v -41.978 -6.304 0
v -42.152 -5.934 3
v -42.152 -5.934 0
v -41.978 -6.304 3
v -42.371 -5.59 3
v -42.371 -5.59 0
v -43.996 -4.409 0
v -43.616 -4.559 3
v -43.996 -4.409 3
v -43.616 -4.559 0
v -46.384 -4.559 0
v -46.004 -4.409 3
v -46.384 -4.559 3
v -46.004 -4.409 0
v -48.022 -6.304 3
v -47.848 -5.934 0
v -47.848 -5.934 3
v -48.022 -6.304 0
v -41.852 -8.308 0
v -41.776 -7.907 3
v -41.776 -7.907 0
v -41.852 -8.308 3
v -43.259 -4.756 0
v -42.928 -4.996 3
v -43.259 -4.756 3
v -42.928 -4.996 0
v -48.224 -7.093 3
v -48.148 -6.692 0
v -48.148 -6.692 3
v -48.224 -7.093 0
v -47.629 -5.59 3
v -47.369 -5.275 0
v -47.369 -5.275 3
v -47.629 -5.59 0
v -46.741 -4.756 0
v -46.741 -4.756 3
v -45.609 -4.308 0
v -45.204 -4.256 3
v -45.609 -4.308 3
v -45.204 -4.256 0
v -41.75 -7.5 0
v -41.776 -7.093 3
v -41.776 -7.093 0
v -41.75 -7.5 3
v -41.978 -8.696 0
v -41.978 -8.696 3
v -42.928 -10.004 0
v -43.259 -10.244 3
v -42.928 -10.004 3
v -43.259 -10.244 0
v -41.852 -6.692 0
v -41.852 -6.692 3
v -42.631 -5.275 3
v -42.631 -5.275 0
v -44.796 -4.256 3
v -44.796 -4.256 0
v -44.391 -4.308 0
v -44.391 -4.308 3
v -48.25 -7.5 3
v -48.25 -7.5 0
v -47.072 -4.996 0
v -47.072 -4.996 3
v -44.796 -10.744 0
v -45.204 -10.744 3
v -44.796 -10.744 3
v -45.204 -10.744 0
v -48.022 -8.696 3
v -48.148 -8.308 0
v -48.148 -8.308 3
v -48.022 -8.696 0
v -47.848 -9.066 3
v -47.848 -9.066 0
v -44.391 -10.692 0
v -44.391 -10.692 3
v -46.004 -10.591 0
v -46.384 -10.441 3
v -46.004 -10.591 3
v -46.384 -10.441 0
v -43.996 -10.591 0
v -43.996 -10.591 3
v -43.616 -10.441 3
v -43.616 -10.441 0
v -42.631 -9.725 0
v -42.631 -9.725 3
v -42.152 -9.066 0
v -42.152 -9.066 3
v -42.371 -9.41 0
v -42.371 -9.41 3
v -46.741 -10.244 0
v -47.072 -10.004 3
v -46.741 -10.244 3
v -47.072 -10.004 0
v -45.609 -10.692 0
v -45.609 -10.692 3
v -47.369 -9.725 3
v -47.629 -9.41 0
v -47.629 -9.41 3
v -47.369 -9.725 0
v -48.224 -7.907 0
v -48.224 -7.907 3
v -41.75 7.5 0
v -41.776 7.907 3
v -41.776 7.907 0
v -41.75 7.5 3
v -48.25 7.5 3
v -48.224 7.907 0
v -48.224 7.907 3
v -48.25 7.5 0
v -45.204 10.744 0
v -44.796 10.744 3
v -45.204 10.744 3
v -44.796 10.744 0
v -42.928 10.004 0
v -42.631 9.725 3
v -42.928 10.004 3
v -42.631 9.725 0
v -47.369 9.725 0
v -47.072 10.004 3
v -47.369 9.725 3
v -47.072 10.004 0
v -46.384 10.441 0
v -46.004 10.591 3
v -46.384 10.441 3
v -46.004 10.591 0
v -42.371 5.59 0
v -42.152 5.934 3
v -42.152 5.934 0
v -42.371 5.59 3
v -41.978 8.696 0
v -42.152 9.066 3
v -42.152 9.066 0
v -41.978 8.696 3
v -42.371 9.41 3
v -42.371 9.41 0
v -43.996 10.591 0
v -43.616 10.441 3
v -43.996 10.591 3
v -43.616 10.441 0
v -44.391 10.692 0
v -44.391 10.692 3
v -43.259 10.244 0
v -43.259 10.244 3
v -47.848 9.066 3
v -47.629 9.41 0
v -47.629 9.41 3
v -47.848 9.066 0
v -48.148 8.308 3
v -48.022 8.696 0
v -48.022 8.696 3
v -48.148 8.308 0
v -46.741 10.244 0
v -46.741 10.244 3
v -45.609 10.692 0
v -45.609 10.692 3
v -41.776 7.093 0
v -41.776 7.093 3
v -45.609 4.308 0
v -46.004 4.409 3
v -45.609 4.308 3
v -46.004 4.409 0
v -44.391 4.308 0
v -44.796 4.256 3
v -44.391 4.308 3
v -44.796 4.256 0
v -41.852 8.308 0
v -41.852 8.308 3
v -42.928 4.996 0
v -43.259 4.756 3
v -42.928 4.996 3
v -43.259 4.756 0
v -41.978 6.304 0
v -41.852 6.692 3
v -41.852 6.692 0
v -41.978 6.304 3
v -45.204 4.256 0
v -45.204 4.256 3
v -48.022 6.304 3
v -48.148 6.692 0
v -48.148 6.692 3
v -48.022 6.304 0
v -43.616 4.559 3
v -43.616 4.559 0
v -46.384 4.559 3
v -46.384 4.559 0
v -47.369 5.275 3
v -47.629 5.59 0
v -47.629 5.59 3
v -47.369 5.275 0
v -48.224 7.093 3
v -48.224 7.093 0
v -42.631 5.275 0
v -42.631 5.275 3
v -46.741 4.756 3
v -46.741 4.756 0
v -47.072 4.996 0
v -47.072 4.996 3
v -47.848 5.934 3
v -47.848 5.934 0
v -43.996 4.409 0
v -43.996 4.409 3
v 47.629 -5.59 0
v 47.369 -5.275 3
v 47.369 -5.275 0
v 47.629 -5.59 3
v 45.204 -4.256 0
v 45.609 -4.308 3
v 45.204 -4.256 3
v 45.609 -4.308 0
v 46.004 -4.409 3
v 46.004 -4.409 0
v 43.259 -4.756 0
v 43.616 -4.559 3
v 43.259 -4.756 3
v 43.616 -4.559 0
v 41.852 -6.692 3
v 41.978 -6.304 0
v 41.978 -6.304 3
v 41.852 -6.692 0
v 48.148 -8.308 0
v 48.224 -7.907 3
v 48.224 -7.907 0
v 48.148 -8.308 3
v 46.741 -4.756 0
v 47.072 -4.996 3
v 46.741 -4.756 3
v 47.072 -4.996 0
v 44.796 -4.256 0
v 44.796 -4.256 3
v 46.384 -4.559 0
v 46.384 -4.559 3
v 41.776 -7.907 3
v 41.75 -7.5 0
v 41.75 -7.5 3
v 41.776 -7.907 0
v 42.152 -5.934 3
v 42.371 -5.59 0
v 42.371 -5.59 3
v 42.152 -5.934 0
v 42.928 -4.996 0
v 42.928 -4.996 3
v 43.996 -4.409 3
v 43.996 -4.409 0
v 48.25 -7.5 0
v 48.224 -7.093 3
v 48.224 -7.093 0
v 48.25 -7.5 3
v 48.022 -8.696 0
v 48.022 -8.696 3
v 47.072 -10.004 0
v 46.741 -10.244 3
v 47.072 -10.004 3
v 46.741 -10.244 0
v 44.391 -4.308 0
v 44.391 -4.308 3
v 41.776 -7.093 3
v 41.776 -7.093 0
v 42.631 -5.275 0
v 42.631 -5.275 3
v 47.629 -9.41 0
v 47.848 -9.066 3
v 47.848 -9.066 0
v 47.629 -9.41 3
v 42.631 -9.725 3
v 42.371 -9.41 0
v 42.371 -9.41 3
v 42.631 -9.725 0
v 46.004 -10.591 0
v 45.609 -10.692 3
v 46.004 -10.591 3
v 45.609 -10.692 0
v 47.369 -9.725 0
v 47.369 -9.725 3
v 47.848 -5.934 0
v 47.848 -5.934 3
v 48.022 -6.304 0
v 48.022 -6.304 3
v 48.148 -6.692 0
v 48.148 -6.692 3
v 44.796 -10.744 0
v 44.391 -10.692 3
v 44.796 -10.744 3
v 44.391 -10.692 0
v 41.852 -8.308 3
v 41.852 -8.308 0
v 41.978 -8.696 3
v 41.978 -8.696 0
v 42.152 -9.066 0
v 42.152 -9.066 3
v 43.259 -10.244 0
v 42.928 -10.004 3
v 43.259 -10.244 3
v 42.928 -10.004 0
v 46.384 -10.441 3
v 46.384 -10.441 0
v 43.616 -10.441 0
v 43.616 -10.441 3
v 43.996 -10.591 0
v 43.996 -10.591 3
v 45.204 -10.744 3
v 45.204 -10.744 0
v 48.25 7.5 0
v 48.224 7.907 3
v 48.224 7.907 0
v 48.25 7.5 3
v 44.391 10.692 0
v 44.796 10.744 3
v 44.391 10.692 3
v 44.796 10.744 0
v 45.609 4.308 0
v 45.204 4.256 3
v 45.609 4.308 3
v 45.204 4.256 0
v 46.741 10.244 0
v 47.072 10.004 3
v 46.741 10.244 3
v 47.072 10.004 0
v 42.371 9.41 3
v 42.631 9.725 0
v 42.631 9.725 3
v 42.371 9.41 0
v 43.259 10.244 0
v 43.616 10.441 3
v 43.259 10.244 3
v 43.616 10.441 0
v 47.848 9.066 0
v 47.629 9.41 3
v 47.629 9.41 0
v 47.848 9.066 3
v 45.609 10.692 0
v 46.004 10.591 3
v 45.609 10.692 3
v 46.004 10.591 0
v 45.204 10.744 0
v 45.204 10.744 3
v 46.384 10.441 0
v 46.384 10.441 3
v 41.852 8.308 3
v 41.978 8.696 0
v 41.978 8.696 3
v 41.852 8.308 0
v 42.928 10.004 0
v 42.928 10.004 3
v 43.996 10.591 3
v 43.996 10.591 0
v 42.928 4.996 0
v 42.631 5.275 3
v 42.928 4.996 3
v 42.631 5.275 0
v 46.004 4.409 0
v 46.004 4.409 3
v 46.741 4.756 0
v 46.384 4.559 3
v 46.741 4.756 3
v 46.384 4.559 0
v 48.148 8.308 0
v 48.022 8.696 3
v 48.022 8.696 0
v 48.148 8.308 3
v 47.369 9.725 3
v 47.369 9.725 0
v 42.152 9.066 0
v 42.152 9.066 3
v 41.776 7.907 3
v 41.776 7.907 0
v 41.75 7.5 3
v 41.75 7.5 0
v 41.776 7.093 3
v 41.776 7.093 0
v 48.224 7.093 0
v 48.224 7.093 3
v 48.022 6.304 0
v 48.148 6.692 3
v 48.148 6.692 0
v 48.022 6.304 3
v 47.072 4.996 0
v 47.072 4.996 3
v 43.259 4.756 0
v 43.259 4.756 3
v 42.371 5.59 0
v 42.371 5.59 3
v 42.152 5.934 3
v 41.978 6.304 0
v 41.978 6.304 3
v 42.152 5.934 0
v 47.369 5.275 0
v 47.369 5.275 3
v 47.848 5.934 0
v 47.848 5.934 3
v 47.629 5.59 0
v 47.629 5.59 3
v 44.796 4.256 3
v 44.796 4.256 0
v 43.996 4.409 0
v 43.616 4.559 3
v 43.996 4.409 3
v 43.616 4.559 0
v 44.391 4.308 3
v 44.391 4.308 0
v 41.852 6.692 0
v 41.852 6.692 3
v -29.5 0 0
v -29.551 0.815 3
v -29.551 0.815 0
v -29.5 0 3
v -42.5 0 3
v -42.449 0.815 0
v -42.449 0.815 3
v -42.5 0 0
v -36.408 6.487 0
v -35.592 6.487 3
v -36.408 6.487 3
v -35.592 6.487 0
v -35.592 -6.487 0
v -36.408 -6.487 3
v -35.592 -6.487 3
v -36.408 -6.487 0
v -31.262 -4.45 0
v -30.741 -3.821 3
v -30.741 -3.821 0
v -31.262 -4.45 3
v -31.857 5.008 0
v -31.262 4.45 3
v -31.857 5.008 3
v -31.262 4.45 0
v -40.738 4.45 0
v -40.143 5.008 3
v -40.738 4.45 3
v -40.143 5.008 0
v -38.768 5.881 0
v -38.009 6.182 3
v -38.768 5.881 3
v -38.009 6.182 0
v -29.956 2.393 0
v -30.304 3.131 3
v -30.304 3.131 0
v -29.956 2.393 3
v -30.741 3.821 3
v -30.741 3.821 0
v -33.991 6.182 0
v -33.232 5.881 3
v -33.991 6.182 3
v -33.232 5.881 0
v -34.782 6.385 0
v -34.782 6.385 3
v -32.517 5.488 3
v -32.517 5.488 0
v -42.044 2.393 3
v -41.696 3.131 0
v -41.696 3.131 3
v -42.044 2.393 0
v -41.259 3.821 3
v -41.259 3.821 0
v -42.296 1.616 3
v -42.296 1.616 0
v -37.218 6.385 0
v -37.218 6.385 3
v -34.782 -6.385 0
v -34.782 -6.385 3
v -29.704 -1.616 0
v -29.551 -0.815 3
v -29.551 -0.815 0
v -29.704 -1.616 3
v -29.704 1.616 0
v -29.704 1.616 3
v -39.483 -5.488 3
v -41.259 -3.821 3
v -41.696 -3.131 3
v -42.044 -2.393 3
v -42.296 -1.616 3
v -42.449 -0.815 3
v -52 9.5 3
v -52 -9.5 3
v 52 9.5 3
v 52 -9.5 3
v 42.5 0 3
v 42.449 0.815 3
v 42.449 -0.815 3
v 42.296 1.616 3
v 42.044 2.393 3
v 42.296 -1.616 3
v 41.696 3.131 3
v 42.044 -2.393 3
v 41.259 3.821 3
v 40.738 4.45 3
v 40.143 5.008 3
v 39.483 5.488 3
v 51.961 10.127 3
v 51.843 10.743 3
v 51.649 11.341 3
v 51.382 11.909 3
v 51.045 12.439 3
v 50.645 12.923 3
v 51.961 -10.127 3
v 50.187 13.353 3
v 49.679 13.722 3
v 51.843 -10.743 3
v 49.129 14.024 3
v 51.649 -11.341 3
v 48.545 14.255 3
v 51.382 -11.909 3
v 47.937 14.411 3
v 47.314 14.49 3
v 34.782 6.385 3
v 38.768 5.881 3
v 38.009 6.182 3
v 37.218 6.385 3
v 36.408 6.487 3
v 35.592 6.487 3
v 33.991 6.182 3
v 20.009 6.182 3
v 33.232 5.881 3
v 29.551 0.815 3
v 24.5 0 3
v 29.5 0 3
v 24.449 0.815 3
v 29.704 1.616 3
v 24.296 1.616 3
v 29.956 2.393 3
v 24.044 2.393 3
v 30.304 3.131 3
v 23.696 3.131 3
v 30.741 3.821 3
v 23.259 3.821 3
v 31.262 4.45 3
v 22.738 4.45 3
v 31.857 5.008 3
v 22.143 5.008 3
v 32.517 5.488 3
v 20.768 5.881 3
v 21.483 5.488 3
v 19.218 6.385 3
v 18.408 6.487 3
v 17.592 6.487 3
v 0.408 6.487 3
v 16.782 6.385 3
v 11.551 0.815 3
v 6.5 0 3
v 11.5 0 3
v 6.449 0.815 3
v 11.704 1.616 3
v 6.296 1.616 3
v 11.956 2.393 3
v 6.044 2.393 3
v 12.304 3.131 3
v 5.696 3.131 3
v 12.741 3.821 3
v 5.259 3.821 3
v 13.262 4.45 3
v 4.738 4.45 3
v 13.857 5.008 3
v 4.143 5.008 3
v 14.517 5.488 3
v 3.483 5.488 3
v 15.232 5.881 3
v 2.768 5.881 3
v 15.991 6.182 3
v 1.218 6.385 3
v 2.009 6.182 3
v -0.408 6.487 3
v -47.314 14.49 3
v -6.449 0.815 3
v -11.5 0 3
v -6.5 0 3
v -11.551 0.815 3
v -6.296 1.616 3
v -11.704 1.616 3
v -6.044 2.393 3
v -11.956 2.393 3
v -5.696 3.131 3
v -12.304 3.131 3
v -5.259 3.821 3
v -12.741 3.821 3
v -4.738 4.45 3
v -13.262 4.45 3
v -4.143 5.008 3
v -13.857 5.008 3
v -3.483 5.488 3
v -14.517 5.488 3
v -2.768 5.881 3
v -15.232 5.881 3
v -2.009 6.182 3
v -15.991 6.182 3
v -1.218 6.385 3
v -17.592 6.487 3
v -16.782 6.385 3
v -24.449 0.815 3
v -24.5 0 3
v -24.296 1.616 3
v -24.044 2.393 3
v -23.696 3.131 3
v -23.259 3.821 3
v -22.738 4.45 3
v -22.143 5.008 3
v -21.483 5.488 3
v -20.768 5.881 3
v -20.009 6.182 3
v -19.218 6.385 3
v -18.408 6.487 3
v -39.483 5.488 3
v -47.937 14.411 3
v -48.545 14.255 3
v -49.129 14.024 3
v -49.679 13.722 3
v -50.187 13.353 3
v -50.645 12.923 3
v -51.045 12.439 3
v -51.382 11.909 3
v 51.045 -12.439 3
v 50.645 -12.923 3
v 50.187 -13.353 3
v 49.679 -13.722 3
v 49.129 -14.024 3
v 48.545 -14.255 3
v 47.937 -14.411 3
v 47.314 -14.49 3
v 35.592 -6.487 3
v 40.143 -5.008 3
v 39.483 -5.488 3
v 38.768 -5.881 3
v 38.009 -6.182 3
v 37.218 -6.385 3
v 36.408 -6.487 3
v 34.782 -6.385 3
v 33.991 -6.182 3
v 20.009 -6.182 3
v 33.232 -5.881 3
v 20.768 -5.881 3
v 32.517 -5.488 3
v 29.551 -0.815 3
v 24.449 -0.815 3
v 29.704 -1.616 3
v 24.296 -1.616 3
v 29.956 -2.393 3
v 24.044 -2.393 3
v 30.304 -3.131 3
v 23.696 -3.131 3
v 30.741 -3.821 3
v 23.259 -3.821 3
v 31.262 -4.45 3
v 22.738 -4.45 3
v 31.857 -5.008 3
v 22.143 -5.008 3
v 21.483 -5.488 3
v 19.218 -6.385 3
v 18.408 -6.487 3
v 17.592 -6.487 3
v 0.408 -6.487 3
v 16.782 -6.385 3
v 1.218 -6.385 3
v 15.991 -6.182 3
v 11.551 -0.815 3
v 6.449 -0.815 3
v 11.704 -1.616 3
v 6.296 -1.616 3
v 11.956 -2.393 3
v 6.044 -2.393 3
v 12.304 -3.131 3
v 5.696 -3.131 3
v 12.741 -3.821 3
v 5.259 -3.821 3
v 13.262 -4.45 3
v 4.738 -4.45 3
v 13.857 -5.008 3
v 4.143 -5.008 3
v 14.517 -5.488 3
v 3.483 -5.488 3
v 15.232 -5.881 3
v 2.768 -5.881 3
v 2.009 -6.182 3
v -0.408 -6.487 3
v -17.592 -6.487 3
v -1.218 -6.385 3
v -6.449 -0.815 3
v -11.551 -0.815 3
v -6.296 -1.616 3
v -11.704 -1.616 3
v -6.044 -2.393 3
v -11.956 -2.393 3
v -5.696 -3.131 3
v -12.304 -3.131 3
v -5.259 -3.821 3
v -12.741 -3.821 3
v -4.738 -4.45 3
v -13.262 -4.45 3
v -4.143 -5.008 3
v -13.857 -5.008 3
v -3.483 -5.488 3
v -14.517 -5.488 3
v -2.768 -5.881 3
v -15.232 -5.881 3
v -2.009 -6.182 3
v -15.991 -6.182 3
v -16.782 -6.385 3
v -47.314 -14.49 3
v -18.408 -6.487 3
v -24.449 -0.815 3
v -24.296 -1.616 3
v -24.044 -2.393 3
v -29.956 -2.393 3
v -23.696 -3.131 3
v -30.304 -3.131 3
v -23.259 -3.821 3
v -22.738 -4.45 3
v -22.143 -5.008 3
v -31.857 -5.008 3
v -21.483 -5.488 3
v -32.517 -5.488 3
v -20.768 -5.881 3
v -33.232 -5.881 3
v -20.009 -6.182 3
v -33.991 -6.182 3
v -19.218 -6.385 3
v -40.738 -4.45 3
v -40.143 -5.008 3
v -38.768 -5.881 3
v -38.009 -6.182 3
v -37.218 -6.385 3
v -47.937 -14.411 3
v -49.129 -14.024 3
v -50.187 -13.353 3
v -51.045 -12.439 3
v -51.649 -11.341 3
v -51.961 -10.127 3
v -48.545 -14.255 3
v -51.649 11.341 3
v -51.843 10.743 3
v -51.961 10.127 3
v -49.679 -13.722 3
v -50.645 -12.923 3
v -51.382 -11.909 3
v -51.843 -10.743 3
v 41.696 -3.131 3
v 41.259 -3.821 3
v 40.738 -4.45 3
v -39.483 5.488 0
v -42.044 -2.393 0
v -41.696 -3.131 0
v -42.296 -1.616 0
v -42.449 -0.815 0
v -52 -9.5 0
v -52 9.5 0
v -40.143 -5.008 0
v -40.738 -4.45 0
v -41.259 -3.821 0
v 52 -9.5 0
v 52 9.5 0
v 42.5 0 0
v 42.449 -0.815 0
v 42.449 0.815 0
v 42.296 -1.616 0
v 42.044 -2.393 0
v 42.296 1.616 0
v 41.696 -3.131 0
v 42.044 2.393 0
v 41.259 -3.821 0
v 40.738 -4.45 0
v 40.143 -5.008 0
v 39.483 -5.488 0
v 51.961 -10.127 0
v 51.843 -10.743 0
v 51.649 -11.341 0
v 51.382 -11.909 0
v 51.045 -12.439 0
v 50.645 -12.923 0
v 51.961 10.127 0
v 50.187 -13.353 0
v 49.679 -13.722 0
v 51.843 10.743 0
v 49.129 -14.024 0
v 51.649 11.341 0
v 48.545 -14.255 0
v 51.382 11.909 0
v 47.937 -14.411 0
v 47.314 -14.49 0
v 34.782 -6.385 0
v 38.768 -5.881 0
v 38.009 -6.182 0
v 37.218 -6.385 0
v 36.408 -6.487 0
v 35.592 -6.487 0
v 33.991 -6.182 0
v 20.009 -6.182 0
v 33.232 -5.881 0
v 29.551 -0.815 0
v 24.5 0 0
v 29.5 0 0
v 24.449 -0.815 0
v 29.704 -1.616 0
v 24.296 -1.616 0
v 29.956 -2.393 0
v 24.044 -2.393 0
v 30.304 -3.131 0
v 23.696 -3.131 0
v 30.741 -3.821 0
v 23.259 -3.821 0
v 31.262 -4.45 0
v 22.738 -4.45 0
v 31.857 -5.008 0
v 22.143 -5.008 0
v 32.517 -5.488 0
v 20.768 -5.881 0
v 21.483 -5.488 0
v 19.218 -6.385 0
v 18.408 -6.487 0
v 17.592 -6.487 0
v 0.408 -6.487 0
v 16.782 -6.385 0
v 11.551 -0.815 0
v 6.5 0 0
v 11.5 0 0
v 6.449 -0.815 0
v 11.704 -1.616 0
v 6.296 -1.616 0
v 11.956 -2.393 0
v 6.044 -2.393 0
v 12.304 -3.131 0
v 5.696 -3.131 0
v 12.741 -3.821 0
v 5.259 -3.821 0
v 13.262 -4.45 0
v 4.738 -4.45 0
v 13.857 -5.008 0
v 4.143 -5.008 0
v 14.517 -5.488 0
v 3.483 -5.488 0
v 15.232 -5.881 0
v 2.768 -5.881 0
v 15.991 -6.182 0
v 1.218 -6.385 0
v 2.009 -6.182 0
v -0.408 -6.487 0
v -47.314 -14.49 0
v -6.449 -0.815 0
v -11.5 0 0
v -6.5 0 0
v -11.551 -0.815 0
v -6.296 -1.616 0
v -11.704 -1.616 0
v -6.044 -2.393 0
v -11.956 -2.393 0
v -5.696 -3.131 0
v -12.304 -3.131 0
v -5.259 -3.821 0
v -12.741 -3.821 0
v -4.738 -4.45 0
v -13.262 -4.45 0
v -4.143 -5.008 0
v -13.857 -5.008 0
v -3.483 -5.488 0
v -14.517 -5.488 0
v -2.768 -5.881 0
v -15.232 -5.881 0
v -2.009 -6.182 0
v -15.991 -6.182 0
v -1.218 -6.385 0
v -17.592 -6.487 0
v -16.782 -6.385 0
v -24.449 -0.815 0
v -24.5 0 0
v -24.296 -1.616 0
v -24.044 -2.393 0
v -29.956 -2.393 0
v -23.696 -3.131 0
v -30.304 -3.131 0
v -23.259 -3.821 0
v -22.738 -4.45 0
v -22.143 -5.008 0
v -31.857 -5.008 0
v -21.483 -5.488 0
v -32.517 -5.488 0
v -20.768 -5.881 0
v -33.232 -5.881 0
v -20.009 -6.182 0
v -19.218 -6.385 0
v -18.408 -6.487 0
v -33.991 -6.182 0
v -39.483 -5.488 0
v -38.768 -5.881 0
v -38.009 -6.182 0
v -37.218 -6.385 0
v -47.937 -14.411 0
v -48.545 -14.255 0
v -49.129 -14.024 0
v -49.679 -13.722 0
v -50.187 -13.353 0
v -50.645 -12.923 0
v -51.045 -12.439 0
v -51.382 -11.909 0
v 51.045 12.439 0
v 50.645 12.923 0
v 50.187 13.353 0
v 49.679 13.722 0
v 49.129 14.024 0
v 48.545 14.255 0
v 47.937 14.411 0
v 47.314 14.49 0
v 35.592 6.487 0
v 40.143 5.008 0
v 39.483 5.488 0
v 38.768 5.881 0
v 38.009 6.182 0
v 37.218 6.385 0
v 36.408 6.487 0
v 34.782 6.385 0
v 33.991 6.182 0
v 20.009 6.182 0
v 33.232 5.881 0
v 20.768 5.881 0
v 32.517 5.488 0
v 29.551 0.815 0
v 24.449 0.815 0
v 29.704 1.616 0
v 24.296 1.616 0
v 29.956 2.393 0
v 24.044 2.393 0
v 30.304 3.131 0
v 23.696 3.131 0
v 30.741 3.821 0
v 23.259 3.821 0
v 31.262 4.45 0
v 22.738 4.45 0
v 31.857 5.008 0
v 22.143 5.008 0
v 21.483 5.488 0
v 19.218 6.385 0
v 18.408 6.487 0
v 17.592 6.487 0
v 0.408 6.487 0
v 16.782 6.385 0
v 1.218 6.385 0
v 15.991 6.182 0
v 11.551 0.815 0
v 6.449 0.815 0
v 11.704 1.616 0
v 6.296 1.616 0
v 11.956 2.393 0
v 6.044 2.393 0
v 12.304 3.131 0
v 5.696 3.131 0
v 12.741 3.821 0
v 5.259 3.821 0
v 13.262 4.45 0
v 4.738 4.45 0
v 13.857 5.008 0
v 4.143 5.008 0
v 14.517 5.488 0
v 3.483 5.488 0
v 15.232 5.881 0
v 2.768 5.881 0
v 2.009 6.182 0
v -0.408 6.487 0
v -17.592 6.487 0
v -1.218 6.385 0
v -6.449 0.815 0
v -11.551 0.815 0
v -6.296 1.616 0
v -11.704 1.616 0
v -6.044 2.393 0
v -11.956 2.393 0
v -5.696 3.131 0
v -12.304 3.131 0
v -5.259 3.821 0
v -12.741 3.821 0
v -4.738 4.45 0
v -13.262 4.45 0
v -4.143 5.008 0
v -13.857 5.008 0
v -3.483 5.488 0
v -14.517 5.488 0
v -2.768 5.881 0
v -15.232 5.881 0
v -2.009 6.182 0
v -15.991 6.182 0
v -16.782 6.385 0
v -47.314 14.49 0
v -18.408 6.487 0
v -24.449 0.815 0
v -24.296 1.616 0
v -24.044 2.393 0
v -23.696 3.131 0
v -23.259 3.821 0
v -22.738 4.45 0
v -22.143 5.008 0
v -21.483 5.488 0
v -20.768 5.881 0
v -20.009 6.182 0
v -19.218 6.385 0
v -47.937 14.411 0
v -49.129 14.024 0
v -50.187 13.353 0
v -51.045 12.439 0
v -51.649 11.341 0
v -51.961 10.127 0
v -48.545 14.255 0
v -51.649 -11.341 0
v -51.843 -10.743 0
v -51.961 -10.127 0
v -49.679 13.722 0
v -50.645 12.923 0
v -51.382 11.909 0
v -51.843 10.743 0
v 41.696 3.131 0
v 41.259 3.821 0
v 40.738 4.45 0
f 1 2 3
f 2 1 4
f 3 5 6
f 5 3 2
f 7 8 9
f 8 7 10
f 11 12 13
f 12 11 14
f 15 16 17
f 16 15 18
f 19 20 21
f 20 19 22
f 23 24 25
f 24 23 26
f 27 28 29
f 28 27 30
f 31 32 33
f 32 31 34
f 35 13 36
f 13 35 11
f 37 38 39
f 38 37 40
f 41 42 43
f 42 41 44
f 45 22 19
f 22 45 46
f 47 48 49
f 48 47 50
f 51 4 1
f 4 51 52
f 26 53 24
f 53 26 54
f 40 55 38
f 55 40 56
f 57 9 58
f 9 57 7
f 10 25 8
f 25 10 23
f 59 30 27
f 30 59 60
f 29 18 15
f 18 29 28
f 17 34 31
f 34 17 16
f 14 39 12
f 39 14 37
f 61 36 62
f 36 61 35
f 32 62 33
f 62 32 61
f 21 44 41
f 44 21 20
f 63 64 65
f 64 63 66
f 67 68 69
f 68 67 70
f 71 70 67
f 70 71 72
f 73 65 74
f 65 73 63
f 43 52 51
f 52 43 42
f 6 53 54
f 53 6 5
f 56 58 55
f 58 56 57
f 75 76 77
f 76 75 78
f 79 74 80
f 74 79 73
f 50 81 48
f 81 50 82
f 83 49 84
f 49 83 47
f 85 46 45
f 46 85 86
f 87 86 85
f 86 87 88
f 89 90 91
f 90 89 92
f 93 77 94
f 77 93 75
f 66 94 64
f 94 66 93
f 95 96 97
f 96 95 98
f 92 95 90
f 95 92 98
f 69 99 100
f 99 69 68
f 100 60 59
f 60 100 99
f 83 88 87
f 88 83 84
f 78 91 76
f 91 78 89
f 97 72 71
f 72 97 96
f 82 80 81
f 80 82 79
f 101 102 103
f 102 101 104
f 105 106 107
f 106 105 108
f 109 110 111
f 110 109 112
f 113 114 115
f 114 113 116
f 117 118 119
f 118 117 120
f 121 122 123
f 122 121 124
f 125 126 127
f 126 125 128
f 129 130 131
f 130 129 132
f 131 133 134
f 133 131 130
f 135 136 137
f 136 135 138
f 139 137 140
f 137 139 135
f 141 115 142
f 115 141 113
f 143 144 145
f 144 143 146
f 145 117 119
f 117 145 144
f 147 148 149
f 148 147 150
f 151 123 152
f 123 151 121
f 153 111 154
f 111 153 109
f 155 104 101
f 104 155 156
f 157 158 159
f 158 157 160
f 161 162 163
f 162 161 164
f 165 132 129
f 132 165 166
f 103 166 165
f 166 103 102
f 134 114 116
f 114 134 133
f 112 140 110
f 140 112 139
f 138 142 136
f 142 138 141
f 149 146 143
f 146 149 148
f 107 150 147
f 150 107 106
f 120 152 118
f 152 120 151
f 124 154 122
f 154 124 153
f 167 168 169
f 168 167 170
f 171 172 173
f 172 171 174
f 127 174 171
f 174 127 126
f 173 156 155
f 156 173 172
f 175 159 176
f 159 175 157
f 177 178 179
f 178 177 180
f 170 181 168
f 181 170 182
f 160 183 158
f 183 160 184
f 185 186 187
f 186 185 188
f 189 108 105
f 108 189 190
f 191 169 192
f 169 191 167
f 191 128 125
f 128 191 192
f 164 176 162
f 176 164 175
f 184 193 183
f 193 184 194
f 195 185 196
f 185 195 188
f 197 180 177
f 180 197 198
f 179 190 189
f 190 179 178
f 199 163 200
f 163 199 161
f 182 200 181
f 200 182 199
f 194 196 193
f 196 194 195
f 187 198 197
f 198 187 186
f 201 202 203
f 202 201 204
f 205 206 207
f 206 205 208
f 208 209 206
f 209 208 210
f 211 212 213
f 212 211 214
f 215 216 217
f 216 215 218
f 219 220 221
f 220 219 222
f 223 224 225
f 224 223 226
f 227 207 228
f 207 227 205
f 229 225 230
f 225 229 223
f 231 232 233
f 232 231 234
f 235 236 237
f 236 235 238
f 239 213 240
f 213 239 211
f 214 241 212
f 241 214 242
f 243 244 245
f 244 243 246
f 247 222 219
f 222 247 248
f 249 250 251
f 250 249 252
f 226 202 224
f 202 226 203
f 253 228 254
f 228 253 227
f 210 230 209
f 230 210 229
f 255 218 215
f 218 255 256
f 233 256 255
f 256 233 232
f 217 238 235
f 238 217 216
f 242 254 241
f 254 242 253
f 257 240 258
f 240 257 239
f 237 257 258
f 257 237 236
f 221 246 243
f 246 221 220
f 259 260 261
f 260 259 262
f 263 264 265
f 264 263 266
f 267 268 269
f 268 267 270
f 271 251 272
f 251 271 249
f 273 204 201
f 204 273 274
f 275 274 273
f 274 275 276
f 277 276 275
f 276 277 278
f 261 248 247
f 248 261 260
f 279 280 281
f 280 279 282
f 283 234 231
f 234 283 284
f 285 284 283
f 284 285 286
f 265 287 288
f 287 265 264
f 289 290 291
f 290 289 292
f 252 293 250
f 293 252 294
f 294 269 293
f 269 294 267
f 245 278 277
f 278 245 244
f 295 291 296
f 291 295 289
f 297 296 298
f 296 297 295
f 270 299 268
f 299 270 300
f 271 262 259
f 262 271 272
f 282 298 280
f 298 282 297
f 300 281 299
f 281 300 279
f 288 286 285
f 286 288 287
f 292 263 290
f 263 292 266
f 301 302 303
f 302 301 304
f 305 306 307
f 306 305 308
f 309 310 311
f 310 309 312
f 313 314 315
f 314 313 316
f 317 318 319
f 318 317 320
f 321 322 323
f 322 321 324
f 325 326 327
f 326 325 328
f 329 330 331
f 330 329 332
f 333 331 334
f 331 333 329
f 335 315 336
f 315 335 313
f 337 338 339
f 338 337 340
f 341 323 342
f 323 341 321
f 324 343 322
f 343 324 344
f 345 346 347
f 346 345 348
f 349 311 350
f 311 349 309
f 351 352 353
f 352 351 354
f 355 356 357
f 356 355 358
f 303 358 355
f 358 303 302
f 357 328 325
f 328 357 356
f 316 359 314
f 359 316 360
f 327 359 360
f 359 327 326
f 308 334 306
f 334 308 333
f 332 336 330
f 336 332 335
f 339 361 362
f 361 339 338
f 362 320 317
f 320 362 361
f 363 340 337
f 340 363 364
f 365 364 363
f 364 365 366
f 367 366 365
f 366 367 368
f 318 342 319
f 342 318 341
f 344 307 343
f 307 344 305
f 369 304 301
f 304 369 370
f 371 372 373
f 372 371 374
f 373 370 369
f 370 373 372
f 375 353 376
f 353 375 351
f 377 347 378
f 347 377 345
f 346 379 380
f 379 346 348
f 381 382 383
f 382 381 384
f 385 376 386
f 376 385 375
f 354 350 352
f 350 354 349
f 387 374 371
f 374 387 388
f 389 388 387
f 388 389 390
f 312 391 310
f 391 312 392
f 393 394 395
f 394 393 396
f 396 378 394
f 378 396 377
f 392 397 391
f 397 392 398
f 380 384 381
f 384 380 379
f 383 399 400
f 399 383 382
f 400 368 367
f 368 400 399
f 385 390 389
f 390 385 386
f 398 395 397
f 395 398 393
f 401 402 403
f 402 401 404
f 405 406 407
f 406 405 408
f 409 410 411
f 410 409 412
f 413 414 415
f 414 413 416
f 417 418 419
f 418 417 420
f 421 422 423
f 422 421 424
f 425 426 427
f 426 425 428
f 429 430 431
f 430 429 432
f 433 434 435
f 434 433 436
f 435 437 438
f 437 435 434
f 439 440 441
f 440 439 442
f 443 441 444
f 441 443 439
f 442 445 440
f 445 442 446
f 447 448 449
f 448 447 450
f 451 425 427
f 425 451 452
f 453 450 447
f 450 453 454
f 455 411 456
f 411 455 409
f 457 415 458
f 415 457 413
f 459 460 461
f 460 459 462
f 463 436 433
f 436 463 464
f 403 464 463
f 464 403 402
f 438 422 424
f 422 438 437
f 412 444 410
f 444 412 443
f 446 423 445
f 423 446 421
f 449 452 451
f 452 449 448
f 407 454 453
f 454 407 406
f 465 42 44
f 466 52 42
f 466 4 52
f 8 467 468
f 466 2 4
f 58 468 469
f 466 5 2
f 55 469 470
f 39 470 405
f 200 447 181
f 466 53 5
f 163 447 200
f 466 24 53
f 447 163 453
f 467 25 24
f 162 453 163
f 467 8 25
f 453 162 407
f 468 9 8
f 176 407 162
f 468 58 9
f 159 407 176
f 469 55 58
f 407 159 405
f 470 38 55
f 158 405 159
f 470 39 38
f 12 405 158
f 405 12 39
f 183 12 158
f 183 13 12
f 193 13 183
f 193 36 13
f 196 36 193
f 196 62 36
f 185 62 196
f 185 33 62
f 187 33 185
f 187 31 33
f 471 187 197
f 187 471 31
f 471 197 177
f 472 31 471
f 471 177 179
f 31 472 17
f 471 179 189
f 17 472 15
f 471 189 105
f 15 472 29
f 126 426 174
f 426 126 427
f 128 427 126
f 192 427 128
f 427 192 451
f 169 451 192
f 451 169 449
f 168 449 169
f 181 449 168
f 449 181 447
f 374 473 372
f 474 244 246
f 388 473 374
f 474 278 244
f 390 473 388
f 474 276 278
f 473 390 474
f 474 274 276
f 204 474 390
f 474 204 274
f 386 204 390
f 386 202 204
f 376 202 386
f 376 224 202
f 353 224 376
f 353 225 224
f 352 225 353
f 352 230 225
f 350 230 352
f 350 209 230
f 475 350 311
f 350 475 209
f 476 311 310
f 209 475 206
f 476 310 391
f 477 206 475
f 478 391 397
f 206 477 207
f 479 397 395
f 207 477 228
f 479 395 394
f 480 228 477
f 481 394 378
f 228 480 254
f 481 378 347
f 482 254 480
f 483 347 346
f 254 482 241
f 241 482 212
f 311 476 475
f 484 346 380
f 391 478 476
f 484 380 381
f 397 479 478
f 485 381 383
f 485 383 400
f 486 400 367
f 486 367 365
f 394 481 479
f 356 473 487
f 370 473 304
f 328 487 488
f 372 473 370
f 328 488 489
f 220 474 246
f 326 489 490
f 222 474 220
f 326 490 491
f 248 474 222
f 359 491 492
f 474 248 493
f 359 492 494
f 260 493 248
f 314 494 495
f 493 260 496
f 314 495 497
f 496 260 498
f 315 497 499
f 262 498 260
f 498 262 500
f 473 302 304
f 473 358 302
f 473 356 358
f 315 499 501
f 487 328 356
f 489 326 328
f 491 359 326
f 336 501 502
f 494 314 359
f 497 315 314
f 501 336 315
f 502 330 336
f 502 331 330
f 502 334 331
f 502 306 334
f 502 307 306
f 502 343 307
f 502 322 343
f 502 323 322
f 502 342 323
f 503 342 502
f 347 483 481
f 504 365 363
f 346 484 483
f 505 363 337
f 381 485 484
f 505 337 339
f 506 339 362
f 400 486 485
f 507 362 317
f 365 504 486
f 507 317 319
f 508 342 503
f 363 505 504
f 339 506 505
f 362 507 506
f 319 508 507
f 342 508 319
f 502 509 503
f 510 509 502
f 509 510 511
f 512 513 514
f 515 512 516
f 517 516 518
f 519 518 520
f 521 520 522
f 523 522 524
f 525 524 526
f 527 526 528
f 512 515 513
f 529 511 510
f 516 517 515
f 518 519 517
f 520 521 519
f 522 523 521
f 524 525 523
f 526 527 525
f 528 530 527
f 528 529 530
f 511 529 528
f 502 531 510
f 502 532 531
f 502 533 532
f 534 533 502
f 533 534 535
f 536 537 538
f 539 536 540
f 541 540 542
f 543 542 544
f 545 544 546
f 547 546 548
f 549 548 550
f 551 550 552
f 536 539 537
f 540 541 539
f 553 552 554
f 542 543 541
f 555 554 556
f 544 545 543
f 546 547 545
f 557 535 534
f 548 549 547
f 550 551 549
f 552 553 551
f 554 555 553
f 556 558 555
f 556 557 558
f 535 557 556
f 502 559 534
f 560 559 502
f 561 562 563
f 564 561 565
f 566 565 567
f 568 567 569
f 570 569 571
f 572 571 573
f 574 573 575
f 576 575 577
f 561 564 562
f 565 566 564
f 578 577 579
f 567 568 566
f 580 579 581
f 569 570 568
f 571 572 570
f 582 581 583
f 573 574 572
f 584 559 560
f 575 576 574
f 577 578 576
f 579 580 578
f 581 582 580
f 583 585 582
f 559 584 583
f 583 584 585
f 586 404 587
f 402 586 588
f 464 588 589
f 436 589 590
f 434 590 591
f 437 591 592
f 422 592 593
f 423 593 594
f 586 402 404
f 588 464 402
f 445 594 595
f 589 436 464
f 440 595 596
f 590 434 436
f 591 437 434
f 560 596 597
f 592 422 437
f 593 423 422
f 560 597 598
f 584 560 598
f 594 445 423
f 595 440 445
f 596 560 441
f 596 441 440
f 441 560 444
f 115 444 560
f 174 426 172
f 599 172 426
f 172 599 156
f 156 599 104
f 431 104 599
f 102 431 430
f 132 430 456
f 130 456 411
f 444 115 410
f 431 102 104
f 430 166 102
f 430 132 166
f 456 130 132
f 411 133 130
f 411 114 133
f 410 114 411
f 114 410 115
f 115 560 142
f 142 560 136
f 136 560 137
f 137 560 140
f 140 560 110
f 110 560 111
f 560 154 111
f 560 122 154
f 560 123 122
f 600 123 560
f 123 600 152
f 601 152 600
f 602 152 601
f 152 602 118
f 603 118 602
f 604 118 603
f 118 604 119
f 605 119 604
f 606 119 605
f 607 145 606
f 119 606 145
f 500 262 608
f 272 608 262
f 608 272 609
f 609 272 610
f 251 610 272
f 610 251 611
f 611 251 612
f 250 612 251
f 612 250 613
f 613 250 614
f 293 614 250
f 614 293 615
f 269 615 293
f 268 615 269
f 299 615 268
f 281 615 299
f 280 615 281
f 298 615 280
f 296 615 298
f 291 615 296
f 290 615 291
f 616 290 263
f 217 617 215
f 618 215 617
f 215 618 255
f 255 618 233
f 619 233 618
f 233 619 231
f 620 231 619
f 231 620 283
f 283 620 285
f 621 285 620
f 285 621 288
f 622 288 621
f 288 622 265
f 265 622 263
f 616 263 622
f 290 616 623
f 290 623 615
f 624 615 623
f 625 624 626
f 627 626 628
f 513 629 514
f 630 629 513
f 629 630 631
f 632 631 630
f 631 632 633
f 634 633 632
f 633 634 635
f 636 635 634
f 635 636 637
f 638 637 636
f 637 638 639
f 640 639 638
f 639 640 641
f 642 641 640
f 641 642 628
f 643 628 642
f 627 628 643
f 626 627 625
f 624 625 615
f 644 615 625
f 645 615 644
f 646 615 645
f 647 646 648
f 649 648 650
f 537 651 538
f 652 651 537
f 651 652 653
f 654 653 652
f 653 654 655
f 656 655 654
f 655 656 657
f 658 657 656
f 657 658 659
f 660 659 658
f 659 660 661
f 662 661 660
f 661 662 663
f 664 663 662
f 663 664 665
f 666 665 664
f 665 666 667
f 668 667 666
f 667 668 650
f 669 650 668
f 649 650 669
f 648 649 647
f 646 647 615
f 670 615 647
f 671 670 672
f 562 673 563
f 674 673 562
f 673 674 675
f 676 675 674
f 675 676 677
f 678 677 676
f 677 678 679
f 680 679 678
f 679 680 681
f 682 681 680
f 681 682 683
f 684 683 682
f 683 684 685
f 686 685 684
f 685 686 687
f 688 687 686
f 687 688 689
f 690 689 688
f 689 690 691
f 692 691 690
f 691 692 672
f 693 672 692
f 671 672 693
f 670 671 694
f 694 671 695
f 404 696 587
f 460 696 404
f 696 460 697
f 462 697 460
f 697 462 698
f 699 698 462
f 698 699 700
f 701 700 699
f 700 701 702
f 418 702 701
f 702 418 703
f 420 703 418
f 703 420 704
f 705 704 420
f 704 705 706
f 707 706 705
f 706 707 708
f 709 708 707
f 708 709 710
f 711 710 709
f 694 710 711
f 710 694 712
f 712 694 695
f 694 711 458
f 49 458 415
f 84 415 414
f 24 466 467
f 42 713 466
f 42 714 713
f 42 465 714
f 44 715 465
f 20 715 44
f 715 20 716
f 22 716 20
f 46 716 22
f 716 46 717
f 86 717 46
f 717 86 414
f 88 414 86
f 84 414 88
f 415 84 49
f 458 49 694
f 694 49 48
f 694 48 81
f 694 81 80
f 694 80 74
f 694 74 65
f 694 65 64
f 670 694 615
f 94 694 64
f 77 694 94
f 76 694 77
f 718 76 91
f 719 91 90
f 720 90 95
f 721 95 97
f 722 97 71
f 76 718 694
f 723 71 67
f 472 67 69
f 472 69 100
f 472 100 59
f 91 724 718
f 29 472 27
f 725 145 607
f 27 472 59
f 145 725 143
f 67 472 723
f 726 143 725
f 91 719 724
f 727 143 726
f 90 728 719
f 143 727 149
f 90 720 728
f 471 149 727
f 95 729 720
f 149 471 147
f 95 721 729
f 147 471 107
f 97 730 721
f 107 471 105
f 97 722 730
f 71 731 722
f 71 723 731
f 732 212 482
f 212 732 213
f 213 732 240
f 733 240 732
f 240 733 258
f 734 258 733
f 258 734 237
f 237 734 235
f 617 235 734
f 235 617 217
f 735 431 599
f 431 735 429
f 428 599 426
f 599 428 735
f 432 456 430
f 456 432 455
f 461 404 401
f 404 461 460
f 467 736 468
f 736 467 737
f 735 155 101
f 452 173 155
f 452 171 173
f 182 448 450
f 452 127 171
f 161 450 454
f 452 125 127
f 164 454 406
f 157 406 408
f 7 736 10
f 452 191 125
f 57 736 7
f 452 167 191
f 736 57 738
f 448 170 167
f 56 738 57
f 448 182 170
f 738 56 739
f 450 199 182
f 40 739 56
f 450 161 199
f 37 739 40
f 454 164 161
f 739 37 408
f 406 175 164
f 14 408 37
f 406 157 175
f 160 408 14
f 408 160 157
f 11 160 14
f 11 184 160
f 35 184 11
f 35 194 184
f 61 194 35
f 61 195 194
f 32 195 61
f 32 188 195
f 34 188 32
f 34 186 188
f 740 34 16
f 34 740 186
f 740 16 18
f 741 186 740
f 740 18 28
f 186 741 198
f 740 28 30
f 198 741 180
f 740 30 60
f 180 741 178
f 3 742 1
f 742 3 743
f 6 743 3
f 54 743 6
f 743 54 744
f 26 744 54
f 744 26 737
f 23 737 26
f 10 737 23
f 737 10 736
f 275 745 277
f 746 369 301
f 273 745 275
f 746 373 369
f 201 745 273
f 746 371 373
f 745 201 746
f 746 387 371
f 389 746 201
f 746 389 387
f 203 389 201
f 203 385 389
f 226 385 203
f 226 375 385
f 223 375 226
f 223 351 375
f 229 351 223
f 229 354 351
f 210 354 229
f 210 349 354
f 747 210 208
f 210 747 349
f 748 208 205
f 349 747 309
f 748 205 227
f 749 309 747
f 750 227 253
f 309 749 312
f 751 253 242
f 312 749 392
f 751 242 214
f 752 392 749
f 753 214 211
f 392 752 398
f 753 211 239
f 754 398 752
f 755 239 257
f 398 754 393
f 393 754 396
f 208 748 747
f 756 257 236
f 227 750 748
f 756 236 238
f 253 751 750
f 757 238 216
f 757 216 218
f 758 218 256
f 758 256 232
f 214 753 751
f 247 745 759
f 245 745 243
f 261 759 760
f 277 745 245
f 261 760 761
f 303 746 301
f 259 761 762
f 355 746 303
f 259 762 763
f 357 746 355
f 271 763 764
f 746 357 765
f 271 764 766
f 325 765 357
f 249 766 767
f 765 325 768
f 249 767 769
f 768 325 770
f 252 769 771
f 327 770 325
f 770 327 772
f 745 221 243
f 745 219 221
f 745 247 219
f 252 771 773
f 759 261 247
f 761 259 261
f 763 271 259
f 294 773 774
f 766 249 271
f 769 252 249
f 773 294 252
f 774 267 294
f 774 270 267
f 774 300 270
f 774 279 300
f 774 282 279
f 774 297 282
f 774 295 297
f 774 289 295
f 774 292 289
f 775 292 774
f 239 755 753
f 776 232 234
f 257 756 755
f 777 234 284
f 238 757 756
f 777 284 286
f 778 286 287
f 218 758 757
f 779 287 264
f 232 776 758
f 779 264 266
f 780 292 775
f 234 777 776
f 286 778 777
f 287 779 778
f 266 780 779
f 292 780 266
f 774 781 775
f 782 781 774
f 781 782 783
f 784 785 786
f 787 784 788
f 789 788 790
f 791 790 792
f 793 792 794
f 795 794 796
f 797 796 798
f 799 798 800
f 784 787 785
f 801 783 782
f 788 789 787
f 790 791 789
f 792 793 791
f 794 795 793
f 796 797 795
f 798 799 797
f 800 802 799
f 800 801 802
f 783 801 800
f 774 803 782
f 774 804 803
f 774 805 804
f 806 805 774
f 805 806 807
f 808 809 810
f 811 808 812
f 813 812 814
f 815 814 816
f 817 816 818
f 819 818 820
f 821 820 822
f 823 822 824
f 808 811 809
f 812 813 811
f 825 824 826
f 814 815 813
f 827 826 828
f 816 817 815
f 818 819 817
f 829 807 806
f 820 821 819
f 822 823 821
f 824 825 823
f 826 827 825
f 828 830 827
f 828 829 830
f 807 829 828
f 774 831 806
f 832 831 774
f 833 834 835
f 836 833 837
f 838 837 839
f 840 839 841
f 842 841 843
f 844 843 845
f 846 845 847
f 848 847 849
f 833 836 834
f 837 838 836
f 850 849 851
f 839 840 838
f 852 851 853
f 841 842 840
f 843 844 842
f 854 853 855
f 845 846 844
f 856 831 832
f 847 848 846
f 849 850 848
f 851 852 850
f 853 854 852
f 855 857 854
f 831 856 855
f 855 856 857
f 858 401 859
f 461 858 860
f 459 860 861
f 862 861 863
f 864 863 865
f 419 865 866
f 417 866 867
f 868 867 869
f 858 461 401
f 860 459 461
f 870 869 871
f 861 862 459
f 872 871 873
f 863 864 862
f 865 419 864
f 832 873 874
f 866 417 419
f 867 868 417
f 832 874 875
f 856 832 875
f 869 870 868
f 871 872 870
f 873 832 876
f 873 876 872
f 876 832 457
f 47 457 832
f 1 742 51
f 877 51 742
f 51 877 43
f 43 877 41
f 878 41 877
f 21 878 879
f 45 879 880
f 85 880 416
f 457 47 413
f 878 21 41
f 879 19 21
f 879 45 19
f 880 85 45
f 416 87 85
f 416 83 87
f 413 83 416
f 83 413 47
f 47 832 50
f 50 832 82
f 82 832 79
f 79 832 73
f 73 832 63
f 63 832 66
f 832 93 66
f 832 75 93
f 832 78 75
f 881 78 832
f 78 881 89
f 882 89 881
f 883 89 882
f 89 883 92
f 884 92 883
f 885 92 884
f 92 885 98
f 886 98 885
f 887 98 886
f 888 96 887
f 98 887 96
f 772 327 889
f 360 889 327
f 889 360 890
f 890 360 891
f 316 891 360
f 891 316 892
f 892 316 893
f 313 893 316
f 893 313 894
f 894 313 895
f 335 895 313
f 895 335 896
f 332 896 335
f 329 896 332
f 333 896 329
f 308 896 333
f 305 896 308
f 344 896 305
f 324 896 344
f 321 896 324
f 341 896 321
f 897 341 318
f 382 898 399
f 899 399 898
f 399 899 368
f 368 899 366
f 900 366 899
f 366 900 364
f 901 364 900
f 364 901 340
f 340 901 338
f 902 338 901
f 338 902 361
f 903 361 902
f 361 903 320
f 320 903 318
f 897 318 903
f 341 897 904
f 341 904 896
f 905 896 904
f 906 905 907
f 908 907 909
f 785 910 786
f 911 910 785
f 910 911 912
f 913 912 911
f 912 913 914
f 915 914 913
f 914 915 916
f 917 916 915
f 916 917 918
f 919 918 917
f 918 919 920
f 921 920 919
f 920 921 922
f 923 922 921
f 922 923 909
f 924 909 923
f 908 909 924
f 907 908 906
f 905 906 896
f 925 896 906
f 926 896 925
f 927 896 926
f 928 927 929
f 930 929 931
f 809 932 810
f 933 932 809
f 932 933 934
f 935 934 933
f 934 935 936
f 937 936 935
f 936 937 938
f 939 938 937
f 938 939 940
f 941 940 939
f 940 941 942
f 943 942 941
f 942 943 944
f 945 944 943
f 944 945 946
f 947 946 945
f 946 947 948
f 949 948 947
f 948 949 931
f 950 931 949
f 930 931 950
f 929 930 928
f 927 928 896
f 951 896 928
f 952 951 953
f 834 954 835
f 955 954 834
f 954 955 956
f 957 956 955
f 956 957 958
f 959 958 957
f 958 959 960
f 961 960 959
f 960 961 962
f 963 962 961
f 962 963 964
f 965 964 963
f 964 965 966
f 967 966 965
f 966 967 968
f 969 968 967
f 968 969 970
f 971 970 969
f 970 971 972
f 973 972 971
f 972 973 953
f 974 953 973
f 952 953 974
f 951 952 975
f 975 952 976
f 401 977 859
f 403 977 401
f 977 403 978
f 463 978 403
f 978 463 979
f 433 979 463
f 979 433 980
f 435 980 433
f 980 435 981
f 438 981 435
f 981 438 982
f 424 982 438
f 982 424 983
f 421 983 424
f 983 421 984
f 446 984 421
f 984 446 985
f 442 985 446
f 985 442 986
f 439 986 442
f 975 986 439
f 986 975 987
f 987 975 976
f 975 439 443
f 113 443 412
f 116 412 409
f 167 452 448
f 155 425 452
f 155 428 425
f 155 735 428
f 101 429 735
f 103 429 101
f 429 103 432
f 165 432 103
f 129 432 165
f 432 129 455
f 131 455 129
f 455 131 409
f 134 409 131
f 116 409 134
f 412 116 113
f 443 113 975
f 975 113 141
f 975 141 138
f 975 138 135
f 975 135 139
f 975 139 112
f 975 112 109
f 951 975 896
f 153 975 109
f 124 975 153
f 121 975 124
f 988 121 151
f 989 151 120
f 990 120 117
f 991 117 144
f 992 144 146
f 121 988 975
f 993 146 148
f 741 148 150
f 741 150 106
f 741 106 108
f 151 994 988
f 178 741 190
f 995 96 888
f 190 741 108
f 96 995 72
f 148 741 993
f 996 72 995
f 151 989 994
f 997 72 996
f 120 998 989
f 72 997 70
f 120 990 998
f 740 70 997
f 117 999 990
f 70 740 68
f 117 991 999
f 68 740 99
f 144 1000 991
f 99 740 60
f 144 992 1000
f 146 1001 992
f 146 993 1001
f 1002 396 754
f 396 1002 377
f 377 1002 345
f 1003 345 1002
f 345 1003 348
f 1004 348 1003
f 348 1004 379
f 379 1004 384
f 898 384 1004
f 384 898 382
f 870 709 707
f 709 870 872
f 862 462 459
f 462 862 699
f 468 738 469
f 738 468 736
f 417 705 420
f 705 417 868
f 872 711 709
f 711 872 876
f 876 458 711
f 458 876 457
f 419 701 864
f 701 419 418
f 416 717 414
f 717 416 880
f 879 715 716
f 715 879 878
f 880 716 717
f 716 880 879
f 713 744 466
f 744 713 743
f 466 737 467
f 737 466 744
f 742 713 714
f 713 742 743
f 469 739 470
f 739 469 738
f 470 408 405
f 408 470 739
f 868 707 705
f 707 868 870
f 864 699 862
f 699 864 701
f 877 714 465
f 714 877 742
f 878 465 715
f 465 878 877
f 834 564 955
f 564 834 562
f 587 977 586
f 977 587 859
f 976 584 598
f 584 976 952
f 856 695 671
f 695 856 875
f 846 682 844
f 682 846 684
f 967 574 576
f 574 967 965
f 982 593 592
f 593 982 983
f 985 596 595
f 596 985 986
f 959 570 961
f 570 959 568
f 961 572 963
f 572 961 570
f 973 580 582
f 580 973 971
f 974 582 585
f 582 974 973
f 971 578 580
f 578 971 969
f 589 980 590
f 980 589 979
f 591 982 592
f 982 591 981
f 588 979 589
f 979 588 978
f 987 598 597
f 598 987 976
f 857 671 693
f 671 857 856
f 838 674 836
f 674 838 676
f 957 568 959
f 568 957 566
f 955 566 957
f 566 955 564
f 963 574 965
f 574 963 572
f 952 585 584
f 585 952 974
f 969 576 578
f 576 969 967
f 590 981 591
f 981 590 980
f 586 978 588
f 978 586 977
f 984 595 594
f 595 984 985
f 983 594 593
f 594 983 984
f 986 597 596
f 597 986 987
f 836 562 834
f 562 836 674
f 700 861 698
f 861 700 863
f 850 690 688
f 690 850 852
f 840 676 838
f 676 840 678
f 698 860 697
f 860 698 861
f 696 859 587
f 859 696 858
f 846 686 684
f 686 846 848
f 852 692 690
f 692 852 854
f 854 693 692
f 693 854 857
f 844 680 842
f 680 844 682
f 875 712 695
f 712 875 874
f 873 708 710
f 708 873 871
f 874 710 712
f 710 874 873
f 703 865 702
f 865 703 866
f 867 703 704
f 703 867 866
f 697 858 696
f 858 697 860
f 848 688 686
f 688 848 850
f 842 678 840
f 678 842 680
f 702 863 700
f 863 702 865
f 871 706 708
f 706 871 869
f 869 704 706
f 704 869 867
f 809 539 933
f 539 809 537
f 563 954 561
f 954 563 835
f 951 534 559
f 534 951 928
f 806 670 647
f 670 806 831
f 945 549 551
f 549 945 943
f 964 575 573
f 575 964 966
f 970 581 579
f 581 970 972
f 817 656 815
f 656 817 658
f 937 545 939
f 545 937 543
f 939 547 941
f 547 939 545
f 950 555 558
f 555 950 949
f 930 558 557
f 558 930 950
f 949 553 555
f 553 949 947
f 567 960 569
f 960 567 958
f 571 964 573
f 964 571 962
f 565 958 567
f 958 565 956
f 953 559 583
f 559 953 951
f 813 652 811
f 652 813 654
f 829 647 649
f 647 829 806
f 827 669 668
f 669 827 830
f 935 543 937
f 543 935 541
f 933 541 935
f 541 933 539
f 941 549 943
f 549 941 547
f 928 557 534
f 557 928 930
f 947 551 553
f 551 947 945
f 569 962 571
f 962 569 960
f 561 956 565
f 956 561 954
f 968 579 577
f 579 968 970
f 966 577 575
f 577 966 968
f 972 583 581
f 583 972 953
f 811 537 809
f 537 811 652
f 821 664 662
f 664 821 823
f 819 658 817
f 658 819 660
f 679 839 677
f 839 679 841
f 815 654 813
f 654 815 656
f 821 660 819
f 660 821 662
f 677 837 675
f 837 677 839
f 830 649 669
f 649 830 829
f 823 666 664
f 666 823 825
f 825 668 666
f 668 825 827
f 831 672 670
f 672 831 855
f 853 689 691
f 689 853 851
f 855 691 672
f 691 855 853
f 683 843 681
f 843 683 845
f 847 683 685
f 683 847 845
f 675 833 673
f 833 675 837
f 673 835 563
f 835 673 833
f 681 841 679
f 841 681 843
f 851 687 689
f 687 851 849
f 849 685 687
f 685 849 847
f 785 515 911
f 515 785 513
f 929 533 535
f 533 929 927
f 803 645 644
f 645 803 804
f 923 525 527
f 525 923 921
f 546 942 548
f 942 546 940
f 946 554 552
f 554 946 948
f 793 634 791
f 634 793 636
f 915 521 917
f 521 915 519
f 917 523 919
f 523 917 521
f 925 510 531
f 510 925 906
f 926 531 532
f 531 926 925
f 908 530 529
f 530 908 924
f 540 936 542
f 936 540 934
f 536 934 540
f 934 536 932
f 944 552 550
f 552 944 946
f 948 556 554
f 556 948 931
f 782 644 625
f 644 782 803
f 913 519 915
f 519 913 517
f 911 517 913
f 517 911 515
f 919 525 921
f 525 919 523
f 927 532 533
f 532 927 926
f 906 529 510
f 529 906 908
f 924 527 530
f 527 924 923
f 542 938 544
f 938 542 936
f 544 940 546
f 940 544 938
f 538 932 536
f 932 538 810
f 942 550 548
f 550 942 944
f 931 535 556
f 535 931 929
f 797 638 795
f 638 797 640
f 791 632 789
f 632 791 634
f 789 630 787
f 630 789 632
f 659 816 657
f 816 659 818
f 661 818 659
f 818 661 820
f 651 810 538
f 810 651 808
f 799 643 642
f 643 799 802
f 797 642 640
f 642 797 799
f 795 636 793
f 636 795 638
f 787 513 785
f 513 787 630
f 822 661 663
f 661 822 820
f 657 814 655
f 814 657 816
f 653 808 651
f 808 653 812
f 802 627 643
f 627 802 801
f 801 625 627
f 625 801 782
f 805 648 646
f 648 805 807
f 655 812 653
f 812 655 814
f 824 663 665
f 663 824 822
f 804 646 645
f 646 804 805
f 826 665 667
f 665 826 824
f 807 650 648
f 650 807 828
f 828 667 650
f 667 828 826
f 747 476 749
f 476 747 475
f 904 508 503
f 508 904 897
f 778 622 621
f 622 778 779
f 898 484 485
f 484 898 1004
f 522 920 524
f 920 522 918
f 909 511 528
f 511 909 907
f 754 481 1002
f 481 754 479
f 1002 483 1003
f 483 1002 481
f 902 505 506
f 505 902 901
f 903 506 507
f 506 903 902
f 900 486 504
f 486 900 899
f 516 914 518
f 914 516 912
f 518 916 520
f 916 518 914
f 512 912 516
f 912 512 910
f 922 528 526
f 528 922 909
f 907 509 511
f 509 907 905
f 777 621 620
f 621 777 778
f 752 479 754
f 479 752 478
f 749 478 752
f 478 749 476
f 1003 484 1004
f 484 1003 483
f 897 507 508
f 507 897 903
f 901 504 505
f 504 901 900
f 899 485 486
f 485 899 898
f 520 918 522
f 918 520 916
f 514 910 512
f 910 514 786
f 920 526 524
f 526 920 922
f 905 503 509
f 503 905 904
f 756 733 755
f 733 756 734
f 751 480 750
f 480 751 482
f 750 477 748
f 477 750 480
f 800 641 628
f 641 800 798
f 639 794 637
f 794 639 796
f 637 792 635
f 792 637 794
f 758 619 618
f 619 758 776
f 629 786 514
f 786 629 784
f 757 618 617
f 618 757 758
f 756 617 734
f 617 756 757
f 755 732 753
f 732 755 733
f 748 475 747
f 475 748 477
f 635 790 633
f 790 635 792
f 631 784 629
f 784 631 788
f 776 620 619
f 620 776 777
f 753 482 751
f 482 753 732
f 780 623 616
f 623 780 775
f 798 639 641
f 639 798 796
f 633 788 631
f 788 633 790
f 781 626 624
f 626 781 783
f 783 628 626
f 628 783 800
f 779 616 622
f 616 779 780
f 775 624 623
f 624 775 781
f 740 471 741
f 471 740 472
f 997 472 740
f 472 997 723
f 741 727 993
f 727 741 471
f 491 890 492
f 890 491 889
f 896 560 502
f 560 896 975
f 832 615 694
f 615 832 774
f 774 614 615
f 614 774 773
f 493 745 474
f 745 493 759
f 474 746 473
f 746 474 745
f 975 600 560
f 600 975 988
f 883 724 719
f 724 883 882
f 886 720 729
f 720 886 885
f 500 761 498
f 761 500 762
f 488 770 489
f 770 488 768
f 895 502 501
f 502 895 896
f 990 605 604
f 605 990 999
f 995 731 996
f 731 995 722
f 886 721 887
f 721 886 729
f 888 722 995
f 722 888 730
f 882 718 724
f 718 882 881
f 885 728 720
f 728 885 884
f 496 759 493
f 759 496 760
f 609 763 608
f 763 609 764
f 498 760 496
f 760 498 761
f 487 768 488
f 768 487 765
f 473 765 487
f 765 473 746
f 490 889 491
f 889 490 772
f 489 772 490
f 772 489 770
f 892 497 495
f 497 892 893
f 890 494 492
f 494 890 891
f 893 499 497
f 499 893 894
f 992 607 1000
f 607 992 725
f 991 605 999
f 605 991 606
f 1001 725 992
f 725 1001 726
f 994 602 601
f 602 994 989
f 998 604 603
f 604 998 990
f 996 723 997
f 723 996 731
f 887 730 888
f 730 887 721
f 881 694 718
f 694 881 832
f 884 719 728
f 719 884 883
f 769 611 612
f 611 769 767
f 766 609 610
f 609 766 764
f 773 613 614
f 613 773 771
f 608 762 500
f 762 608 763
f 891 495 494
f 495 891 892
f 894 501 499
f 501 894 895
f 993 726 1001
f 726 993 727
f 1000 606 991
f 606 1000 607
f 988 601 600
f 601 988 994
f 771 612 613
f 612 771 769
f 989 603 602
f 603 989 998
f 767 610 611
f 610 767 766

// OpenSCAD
$fn = 50;


difference() {
	union() {
		hull() {
			translate(v = [-47.0000000000, 9.5000000000, 0]) {
				cylinder(h = 3, r = 5);
			}
			translate(v = [47.0000000000, 9.5000000000, 0]) {
				cylinder(h = 3, r = 5);
			}
			translate(v = [-47.0000000000, -9.5000000000, 0]) {
				cylinder(h = 3, r = 5);
			}
			translate(v = [47.0000000000, -9.5000000000, 0]) {
				cylinder(h = 3, r = 5);
			}
		}
	}
	union() {
		#translate(v = [-45.0000000000, -7.5000000000, -100.0000000000]) {
			cylinder(h = 200, r = 3.2500000000);
		}
		#translate(v = [-45.0000000000, 7.5000000000, -100.0000000000]) {
			cylinder(h = 200, r = 3.2500000000);
		}
		#translate(v = [45.0000000000, -7.5000000000, -100.0000000000]) {
			cylinder(h = 200, r = 3.2500000000);
		}
		#translate(v = [45.0000000000, 7.5000000000, -100.0000000000]) {
			cylinder(h = 200, r = 3.2500000000);
		}
		#translate(v = [-36.0000000000, 0, 0]) {
			cylinder(h = 3, r = 6.5000000000);
		}
		#translate(v = [-18.0000000000, 0, 0]) {
			cylinder(h = 3, r = 6.5000000000);
		}
		#cylinder(h = 3, r = 6.5000000000);
		#translate(v = [18.0000000000, 0, 0]) {
			cylinder(h = 3, r = 6.5000000000);
		}
		#translate(v = [36.0000000000, 0, 0]) {
			cylinder(h = 3, r = 6.5000000000);
		}
	}
}
